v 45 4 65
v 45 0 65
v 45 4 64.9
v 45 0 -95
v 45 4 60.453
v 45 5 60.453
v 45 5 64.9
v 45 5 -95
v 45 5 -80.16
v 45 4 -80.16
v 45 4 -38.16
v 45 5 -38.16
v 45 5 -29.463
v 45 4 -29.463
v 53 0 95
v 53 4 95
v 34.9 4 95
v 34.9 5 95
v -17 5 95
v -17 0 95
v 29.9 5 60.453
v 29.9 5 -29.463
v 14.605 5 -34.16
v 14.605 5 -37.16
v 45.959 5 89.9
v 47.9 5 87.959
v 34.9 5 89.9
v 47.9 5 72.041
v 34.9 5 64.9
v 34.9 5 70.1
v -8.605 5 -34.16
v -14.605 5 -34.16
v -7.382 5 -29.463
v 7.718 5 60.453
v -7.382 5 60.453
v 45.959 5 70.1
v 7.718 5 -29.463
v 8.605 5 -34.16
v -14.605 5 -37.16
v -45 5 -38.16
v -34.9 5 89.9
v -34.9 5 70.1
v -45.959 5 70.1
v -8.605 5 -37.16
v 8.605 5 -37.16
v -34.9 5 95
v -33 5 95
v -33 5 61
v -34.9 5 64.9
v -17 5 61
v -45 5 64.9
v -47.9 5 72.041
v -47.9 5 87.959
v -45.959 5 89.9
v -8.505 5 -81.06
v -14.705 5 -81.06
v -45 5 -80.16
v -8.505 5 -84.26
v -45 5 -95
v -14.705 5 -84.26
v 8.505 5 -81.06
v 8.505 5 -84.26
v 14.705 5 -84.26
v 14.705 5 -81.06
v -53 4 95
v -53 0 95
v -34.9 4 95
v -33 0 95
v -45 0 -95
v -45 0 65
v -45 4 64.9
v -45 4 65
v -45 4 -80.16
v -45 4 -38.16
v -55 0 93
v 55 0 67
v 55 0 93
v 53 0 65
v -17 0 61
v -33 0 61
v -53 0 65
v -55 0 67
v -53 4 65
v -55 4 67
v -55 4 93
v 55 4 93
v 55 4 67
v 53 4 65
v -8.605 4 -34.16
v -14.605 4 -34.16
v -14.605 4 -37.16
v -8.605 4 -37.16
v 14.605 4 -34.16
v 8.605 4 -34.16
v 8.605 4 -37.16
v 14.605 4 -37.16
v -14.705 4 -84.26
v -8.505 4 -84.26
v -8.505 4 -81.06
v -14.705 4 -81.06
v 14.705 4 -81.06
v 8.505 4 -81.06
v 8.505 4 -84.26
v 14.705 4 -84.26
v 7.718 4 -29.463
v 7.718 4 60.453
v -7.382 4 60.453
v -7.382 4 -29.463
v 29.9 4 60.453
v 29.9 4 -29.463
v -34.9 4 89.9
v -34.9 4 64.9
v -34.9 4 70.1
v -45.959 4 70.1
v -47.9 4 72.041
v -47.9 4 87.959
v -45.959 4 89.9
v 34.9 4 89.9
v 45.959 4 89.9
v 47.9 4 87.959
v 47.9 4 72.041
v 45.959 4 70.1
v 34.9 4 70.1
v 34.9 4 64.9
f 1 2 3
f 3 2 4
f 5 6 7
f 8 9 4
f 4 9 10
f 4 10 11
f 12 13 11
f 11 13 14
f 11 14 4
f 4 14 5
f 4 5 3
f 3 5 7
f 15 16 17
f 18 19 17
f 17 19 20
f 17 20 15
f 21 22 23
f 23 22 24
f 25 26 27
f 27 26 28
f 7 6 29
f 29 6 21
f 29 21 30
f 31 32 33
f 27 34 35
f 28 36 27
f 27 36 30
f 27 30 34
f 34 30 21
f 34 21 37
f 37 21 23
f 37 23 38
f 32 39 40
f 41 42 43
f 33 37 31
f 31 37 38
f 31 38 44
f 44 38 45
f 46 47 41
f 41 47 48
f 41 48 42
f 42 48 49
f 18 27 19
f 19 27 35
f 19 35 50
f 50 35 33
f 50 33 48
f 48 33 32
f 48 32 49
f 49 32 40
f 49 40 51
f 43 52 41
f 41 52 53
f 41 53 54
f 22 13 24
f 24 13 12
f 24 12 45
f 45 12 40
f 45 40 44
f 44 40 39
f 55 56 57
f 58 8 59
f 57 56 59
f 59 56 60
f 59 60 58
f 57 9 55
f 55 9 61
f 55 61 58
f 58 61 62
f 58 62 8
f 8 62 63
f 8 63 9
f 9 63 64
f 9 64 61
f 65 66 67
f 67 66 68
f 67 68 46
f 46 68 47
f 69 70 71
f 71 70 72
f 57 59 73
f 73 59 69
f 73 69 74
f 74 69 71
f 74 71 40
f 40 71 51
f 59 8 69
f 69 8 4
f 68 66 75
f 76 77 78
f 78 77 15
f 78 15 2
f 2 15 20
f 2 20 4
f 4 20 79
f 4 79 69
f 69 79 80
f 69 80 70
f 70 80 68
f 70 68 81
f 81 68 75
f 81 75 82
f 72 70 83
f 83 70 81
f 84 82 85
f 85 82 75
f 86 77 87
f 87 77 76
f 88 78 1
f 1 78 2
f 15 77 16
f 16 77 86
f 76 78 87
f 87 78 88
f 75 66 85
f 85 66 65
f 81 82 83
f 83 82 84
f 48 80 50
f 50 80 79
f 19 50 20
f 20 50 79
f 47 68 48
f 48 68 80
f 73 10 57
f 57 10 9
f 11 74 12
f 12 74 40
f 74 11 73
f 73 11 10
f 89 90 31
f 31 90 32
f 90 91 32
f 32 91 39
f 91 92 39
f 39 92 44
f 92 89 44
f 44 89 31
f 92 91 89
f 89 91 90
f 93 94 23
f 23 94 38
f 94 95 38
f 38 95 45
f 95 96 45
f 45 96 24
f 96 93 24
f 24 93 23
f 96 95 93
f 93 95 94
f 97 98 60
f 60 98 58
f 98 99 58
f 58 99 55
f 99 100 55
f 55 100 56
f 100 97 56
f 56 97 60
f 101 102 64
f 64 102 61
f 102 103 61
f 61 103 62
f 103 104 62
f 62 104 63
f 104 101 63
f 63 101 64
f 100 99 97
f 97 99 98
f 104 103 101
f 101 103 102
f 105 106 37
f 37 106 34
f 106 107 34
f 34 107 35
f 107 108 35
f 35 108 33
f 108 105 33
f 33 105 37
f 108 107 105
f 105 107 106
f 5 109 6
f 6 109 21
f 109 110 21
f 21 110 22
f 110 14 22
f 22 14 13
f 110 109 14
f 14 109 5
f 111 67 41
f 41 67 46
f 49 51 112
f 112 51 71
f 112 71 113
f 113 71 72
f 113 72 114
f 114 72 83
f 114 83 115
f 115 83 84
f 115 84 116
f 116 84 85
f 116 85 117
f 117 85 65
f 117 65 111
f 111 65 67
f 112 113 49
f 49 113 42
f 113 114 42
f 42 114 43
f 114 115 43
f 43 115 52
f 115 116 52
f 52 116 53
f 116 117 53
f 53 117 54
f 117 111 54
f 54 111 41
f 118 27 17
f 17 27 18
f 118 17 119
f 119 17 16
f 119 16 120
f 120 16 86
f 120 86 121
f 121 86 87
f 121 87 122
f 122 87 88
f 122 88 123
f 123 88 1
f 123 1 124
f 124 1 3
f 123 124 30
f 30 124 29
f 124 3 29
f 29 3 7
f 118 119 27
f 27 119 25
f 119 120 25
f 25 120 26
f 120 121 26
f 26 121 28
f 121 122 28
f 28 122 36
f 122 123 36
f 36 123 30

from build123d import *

# Parameters (mm, degrees)
SKETCH1_W           = 90
SKETCH1_H           = 190
BOSS_EXTRUDE1_DEPTH = 5
SKETCH2_W           = 10
SKETCH2_H           = 30
BOSS_EXTRUDE2_DEPTH = 5
CHAMFER1_SIZE       = 2
SKETCH3_W           = 16
SKETCH3_H           = 34
CUT_EXTRUDE1_DEPTH  = 50
SKETCH4_W           = 90
SKETCH4_H           = 42
CUT_EXTRUDE2_DEPTH  = 1
CUT_EXTRUDE5_START  = 5
SKETCH5_W           = 6
SKETCH5_H           = 3
CUT_EXTRUDE5_DEPTH  = 1
SKETCH6_W           = 6.2
SKETCH6_H           = 3.2
CUT_EXTRUDE6_DEPTH  = 1
SKETCH7_W           = 15.1
SKETCH7_H           = 89.916335477
CUT_EXTRUDE7_DEPTH  = 1
CUT_EXTRUDE8_DEPTH  = 1


with BuildPart() as part:
    # Sketch1 → Boss-Extrude1 (new body)
    with BuildSketch(Plane(origin=(0, 0, 0), x_dir=(1, 0, 0), z_dir=(0, 1, 0))):
        Rectangle(SKETCH1_W, SKETCH1_H)
    extrude(amount=BOSS_EXTRUDE1_DEPTH)

    # Sketch2 → Boss-Extrude2 (add)
    with BuildSketch(Plane(origin=(0, 0, 0), x_dir=(1, 0, 0), z_dir=(0, 1, 0))):
        with Locations((-50, -80)):
            Rectangle(SKETCH2_W, SKETCH2_H)
        with Locations((50, -80)):
            Rectangle(SKETCH2_W, SKETCH2_H)
    extrude(amount=BOSS_EXTRUDE2_DEPTH)

    # Chamfer1
    chamfer1_edges = [part.edges().sort_by_distance(p)[0] for p in [
        (-55, 2.5, 65),
        (-55, 2.5, 95),
        (55, 2.5, 95),
        (55, 2.5, 65),
    ]]
    chamfer(chamfer1_edges, length=CHAMFER1_SIZE)

    # Sketch3 → Cut-Extrude1 (cut)
    with BuildSketch(Plane(origin=(0, 5, 0), x_dir=(1, 0, 0), z_dir=(0, 1, 0))):
        with Locations((-25, -78)):
            Rectangle(SKETCH3_W, SKETCH3_H)
    extrude(amount=-CUT_EXTRUDE1_DEPTH, mode=Mode.SUBTRACT)

    # Sketch4 → Cut-Extrude2 (cut)
    with BuildSketch(Plane(origin=(0, 5, 0), x_dir=(1, 0, 0), z_dir=(0, 1, 0))):
        with Locations((0, 59.159820088)):
            Rectangle(SKETCH4_W, SKETCH4_H)
    extrude(amount=-CUT_EXTRUDE2_DEPTH, mode=Mode.SUBTRACT)

    # Sketch5 → Cut-Extrude5 (cut)
    with BuildSketch(Plane(origin=(0, 0, 0), x_dir=(1, 0, 0), z_dir=(0, 1, 0)).offset(CUT_EXTRUDE5_START)):
        with Locations((-11.605, 35.659820088)):
            Rectangle(SKETCH5_W, SKETCH5_H)
        with Locations((-11.605, 82.659820088)):
            Rectangle(SKETCH5_W, SKETCH5_H)
        with Locations((11.605, 35.659820088)):
            Rectangle(SKETCH5_W, SKETCH5_H)
        with Locations((11.605, 82.659820088)):
            Rectangle(SKETCH5_W, SKETCH5_H)
    extrude(amount=-CUT_EXTRUDE5_DEPTH, mode=Mode.SUBTRACT)

    # Sketch6 → Cut-Extrude6 (cut)
    with BuildSketch(Plane(origin=(0, 5, 0), x_dir=(1, 0, 0), z_dir=(0, 1, 0))):
        with Locations((11.605, 82.659820088)):
            Rectangle(SKETCH6_W, SKETCH6_H)
        with Locations((-11.605, 82.659820088)):
            Rectangle(SKETCH6_W, SKETCH6_H)
    extrude(amount=-CUT_EXTRUDE6_DEPTH, mode=Mode.SUBTRACT)

    # Sketch7 → Cut-Extrude7 (cut)
    with BuildSketch(Plane(origin=(0, 5, 0), x_dir=(1, 0, 0), z_dir=(0, 1, 0))):
        with Locations((37.45, -15.495273531)):
            Rectangle(SKETCH7_W, SKETCH7_H)
        with Locations((0.16773297, -15.495273531)):
            Rectangle(SKETCH7_W, SKETCH7_H)
    extrude(amount=-CUT_EXTRUDE7_DEPTH, mode=Mode.SUBTRACT)

    # Sketch8 → Cut-Extrude8 (cut)
    with BuildSketch(Plane(origin=(0, 5, 0), x_dir=(1, 0, 0), z_dir=(0, 1, 0))):
        Polygon((-34.9, -70.1), (-45.958578644, -70.1), (-47.9, -72.041421356), (-47.9, -87.958578644), (-45.958578644, -89.9), (-34.9, -89.9), (-34.9, -95.1), (-53.041421356, -95.1), (-55.1, -93.041421356), (-55.1, -66.958578644), (-53.041421356, -64.9), (-34.9, -64.9), align=None)
    cut_extrude8 = extrude(amount=-CUT_EXTRUDE8_DEPTH, mode=Mode.SUBTRACT)

    # Mirror1: Cut-Extrude8 across plane
    add(cut_extrude8.mirror(Plane(origin=(0, 0, 0), x_dir=(0, 0, 1), z_dir=(1, 0, 0))), mode=Mode.SUBTRACT)


solid = part.part
